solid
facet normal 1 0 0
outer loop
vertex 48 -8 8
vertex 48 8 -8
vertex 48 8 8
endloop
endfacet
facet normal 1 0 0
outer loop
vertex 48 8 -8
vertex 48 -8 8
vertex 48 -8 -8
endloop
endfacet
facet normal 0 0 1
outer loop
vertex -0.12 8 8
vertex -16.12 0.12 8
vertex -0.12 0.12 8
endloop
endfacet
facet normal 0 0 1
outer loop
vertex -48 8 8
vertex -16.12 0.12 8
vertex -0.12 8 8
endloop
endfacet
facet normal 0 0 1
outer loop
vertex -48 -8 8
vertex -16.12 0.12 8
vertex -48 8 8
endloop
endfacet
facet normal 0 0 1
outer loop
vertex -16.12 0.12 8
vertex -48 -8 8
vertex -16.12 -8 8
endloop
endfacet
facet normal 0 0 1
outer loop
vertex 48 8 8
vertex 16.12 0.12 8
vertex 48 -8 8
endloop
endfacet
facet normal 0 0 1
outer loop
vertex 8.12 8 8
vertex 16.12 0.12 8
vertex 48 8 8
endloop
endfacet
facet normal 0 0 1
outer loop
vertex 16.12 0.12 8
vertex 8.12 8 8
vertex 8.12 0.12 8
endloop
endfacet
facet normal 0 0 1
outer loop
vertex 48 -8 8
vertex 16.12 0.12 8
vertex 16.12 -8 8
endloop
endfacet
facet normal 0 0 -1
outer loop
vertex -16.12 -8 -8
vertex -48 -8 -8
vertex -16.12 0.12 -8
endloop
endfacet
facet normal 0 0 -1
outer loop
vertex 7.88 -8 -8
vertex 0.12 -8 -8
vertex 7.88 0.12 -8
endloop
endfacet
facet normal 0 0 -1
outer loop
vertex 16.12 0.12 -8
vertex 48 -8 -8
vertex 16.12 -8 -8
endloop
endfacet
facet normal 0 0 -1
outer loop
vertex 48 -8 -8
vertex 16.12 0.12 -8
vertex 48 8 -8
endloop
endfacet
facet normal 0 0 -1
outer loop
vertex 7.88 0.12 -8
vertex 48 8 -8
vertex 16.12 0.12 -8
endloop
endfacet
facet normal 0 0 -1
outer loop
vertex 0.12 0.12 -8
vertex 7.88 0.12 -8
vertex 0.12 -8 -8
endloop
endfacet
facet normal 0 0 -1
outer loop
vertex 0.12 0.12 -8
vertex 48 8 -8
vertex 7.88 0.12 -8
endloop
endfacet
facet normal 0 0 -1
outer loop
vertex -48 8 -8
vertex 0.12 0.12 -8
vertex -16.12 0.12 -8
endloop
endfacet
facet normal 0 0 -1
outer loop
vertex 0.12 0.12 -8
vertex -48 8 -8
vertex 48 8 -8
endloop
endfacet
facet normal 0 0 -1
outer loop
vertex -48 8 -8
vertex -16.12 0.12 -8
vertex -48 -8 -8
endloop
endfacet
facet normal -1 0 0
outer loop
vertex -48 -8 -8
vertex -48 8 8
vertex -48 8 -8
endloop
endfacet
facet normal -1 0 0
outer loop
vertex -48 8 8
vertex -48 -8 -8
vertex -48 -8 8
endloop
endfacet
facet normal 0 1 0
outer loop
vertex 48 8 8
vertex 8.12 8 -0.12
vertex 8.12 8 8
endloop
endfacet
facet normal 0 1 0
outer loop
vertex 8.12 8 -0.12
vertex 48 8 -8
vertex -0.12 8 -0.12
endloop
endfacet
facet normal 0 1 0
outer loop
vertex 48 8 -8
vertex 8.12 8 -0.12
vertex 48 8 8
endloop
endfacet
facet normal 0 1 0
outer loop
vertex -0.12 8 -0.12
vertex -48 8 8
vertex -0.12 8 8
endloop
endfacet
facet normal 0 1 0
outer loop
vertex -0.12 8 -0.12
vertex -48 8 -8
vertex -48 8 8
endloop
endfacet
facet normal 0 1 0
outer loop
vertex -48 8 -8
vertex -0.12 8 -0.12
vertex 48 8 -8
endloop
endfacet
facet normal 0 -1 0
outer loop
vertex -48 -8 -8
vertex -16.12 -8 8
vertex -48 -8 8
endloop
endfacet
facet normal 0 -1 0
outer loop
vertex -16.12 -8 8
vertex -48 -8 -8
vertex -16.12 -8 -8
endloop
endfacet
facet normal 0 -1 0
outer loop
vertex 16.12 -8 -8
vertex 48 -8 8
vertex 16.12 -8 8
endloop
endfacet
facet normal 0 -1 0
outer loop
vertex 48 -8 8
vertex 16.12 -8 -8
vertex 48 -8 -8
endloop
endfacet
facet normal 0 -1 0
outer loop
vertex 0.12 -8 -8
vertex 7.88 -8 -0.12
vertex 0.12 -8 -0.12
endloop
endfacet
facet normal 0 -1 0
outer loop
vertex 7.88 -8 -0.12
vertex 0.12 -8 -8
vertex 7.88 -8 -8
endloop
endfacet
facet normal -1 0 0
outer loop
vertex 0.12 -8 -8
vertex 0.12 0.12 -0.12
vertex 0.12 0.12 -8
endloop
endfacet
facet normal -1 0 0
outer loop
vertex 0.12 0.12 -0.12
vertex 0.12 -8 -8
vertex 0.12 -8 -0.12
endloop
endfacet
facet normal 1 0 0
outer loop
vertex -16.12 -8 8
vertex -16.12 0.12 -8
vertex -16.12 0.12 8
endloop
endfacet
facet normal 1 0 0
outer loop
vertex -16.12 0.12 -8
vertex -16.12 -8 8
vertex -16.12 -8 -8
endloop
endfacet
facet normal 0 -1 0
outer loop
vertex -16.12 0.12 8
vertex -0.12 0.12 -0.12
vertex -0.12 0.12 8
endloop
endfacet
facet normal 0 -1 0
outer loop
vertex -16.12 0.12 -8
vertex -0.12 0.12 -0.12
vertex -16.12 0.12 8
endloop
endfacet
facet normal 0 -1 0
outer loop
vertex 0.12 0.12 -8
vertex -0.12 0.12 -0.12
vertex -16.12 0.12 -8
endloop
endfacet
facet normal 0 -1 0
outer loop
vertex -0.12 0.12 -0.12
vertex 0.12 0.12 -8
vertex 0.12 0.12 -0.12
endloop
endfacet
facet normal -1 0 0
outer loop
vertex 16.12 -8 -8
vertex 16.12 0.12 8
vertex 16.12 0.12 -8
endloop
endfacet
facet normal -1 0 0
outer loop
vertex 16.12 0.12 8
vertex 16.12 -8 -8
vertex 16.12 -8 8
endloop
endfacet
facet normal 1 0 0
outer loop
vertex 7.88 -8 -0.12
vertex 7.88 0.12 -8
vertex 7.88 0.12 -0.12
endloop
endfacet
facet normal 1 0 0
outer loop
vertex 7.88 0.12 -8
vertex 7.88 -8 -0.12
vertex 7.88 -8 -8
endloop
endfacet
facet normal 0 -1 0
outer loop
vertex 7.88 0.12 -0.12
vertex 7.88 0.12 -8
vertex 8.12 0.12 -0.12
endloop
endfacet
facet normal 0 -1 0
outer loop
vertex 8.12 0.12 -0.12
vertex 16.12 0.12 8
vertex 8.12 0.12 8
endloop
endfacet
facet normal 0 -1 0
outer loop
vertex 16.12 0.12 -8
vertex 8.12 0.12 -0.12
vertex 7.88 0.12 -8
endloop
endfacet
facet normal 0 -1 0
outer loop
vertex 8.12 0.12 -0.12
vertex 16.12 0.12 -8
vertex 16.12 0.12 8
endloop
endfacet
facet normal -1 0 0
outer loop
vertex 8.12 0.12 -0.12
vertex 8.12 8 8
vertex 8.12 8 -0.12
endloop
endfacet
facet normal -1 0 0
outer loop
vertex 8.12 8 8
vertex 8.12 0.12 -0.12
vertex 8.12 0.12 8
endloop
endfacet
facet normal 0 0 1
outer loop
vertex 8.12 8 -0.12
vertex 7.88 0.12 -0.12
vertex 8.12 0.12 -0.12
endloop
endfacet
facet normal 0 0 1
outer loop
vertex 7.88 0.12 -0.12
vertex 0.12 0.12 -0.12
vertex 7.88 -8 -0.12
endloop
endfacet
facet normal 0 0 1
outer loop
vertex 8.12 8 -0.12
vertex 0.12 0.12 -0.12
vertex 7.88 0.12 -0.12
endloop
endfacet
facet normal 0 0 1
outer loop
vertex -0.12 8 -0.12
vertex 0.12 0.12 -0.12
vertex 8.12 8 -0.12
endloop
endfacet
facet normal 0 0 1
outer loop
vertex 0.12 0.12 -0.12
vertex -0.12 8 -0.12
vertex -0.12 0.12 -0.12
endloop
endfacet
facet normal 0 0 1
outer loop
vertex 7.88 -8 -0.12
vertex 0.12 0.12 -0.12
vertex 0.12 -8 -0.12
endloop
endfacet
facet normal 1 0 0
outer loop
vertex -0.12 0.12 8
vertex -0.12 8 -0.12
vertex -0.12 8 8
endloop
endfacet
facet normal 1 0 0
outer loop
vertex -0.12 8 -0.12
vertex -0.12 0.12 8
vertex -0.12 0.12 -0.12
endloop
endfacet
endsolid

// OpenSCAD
measure = 8;
dd = 0.12/measure;

scale([measure,measure,measure]) difference() {
    cube(size = [12,2,2], center = true);
    translate([-1,-0.5,0]) 
        cube(size = [2 + 2*dd, 1 + 2*dd, 2 + 2*dd], center=true);
    translate([1.5,-0.5,0]) 
        cube(size=[1 + 2*dd, 1 + 2*dd, 2 + 2*dd], center=true);
    translate([0.5,0,0.5]) 
        cube(size=[1 + 2*dd, 2 + 2*dd, 1 + 2*dd], center=true);
}
